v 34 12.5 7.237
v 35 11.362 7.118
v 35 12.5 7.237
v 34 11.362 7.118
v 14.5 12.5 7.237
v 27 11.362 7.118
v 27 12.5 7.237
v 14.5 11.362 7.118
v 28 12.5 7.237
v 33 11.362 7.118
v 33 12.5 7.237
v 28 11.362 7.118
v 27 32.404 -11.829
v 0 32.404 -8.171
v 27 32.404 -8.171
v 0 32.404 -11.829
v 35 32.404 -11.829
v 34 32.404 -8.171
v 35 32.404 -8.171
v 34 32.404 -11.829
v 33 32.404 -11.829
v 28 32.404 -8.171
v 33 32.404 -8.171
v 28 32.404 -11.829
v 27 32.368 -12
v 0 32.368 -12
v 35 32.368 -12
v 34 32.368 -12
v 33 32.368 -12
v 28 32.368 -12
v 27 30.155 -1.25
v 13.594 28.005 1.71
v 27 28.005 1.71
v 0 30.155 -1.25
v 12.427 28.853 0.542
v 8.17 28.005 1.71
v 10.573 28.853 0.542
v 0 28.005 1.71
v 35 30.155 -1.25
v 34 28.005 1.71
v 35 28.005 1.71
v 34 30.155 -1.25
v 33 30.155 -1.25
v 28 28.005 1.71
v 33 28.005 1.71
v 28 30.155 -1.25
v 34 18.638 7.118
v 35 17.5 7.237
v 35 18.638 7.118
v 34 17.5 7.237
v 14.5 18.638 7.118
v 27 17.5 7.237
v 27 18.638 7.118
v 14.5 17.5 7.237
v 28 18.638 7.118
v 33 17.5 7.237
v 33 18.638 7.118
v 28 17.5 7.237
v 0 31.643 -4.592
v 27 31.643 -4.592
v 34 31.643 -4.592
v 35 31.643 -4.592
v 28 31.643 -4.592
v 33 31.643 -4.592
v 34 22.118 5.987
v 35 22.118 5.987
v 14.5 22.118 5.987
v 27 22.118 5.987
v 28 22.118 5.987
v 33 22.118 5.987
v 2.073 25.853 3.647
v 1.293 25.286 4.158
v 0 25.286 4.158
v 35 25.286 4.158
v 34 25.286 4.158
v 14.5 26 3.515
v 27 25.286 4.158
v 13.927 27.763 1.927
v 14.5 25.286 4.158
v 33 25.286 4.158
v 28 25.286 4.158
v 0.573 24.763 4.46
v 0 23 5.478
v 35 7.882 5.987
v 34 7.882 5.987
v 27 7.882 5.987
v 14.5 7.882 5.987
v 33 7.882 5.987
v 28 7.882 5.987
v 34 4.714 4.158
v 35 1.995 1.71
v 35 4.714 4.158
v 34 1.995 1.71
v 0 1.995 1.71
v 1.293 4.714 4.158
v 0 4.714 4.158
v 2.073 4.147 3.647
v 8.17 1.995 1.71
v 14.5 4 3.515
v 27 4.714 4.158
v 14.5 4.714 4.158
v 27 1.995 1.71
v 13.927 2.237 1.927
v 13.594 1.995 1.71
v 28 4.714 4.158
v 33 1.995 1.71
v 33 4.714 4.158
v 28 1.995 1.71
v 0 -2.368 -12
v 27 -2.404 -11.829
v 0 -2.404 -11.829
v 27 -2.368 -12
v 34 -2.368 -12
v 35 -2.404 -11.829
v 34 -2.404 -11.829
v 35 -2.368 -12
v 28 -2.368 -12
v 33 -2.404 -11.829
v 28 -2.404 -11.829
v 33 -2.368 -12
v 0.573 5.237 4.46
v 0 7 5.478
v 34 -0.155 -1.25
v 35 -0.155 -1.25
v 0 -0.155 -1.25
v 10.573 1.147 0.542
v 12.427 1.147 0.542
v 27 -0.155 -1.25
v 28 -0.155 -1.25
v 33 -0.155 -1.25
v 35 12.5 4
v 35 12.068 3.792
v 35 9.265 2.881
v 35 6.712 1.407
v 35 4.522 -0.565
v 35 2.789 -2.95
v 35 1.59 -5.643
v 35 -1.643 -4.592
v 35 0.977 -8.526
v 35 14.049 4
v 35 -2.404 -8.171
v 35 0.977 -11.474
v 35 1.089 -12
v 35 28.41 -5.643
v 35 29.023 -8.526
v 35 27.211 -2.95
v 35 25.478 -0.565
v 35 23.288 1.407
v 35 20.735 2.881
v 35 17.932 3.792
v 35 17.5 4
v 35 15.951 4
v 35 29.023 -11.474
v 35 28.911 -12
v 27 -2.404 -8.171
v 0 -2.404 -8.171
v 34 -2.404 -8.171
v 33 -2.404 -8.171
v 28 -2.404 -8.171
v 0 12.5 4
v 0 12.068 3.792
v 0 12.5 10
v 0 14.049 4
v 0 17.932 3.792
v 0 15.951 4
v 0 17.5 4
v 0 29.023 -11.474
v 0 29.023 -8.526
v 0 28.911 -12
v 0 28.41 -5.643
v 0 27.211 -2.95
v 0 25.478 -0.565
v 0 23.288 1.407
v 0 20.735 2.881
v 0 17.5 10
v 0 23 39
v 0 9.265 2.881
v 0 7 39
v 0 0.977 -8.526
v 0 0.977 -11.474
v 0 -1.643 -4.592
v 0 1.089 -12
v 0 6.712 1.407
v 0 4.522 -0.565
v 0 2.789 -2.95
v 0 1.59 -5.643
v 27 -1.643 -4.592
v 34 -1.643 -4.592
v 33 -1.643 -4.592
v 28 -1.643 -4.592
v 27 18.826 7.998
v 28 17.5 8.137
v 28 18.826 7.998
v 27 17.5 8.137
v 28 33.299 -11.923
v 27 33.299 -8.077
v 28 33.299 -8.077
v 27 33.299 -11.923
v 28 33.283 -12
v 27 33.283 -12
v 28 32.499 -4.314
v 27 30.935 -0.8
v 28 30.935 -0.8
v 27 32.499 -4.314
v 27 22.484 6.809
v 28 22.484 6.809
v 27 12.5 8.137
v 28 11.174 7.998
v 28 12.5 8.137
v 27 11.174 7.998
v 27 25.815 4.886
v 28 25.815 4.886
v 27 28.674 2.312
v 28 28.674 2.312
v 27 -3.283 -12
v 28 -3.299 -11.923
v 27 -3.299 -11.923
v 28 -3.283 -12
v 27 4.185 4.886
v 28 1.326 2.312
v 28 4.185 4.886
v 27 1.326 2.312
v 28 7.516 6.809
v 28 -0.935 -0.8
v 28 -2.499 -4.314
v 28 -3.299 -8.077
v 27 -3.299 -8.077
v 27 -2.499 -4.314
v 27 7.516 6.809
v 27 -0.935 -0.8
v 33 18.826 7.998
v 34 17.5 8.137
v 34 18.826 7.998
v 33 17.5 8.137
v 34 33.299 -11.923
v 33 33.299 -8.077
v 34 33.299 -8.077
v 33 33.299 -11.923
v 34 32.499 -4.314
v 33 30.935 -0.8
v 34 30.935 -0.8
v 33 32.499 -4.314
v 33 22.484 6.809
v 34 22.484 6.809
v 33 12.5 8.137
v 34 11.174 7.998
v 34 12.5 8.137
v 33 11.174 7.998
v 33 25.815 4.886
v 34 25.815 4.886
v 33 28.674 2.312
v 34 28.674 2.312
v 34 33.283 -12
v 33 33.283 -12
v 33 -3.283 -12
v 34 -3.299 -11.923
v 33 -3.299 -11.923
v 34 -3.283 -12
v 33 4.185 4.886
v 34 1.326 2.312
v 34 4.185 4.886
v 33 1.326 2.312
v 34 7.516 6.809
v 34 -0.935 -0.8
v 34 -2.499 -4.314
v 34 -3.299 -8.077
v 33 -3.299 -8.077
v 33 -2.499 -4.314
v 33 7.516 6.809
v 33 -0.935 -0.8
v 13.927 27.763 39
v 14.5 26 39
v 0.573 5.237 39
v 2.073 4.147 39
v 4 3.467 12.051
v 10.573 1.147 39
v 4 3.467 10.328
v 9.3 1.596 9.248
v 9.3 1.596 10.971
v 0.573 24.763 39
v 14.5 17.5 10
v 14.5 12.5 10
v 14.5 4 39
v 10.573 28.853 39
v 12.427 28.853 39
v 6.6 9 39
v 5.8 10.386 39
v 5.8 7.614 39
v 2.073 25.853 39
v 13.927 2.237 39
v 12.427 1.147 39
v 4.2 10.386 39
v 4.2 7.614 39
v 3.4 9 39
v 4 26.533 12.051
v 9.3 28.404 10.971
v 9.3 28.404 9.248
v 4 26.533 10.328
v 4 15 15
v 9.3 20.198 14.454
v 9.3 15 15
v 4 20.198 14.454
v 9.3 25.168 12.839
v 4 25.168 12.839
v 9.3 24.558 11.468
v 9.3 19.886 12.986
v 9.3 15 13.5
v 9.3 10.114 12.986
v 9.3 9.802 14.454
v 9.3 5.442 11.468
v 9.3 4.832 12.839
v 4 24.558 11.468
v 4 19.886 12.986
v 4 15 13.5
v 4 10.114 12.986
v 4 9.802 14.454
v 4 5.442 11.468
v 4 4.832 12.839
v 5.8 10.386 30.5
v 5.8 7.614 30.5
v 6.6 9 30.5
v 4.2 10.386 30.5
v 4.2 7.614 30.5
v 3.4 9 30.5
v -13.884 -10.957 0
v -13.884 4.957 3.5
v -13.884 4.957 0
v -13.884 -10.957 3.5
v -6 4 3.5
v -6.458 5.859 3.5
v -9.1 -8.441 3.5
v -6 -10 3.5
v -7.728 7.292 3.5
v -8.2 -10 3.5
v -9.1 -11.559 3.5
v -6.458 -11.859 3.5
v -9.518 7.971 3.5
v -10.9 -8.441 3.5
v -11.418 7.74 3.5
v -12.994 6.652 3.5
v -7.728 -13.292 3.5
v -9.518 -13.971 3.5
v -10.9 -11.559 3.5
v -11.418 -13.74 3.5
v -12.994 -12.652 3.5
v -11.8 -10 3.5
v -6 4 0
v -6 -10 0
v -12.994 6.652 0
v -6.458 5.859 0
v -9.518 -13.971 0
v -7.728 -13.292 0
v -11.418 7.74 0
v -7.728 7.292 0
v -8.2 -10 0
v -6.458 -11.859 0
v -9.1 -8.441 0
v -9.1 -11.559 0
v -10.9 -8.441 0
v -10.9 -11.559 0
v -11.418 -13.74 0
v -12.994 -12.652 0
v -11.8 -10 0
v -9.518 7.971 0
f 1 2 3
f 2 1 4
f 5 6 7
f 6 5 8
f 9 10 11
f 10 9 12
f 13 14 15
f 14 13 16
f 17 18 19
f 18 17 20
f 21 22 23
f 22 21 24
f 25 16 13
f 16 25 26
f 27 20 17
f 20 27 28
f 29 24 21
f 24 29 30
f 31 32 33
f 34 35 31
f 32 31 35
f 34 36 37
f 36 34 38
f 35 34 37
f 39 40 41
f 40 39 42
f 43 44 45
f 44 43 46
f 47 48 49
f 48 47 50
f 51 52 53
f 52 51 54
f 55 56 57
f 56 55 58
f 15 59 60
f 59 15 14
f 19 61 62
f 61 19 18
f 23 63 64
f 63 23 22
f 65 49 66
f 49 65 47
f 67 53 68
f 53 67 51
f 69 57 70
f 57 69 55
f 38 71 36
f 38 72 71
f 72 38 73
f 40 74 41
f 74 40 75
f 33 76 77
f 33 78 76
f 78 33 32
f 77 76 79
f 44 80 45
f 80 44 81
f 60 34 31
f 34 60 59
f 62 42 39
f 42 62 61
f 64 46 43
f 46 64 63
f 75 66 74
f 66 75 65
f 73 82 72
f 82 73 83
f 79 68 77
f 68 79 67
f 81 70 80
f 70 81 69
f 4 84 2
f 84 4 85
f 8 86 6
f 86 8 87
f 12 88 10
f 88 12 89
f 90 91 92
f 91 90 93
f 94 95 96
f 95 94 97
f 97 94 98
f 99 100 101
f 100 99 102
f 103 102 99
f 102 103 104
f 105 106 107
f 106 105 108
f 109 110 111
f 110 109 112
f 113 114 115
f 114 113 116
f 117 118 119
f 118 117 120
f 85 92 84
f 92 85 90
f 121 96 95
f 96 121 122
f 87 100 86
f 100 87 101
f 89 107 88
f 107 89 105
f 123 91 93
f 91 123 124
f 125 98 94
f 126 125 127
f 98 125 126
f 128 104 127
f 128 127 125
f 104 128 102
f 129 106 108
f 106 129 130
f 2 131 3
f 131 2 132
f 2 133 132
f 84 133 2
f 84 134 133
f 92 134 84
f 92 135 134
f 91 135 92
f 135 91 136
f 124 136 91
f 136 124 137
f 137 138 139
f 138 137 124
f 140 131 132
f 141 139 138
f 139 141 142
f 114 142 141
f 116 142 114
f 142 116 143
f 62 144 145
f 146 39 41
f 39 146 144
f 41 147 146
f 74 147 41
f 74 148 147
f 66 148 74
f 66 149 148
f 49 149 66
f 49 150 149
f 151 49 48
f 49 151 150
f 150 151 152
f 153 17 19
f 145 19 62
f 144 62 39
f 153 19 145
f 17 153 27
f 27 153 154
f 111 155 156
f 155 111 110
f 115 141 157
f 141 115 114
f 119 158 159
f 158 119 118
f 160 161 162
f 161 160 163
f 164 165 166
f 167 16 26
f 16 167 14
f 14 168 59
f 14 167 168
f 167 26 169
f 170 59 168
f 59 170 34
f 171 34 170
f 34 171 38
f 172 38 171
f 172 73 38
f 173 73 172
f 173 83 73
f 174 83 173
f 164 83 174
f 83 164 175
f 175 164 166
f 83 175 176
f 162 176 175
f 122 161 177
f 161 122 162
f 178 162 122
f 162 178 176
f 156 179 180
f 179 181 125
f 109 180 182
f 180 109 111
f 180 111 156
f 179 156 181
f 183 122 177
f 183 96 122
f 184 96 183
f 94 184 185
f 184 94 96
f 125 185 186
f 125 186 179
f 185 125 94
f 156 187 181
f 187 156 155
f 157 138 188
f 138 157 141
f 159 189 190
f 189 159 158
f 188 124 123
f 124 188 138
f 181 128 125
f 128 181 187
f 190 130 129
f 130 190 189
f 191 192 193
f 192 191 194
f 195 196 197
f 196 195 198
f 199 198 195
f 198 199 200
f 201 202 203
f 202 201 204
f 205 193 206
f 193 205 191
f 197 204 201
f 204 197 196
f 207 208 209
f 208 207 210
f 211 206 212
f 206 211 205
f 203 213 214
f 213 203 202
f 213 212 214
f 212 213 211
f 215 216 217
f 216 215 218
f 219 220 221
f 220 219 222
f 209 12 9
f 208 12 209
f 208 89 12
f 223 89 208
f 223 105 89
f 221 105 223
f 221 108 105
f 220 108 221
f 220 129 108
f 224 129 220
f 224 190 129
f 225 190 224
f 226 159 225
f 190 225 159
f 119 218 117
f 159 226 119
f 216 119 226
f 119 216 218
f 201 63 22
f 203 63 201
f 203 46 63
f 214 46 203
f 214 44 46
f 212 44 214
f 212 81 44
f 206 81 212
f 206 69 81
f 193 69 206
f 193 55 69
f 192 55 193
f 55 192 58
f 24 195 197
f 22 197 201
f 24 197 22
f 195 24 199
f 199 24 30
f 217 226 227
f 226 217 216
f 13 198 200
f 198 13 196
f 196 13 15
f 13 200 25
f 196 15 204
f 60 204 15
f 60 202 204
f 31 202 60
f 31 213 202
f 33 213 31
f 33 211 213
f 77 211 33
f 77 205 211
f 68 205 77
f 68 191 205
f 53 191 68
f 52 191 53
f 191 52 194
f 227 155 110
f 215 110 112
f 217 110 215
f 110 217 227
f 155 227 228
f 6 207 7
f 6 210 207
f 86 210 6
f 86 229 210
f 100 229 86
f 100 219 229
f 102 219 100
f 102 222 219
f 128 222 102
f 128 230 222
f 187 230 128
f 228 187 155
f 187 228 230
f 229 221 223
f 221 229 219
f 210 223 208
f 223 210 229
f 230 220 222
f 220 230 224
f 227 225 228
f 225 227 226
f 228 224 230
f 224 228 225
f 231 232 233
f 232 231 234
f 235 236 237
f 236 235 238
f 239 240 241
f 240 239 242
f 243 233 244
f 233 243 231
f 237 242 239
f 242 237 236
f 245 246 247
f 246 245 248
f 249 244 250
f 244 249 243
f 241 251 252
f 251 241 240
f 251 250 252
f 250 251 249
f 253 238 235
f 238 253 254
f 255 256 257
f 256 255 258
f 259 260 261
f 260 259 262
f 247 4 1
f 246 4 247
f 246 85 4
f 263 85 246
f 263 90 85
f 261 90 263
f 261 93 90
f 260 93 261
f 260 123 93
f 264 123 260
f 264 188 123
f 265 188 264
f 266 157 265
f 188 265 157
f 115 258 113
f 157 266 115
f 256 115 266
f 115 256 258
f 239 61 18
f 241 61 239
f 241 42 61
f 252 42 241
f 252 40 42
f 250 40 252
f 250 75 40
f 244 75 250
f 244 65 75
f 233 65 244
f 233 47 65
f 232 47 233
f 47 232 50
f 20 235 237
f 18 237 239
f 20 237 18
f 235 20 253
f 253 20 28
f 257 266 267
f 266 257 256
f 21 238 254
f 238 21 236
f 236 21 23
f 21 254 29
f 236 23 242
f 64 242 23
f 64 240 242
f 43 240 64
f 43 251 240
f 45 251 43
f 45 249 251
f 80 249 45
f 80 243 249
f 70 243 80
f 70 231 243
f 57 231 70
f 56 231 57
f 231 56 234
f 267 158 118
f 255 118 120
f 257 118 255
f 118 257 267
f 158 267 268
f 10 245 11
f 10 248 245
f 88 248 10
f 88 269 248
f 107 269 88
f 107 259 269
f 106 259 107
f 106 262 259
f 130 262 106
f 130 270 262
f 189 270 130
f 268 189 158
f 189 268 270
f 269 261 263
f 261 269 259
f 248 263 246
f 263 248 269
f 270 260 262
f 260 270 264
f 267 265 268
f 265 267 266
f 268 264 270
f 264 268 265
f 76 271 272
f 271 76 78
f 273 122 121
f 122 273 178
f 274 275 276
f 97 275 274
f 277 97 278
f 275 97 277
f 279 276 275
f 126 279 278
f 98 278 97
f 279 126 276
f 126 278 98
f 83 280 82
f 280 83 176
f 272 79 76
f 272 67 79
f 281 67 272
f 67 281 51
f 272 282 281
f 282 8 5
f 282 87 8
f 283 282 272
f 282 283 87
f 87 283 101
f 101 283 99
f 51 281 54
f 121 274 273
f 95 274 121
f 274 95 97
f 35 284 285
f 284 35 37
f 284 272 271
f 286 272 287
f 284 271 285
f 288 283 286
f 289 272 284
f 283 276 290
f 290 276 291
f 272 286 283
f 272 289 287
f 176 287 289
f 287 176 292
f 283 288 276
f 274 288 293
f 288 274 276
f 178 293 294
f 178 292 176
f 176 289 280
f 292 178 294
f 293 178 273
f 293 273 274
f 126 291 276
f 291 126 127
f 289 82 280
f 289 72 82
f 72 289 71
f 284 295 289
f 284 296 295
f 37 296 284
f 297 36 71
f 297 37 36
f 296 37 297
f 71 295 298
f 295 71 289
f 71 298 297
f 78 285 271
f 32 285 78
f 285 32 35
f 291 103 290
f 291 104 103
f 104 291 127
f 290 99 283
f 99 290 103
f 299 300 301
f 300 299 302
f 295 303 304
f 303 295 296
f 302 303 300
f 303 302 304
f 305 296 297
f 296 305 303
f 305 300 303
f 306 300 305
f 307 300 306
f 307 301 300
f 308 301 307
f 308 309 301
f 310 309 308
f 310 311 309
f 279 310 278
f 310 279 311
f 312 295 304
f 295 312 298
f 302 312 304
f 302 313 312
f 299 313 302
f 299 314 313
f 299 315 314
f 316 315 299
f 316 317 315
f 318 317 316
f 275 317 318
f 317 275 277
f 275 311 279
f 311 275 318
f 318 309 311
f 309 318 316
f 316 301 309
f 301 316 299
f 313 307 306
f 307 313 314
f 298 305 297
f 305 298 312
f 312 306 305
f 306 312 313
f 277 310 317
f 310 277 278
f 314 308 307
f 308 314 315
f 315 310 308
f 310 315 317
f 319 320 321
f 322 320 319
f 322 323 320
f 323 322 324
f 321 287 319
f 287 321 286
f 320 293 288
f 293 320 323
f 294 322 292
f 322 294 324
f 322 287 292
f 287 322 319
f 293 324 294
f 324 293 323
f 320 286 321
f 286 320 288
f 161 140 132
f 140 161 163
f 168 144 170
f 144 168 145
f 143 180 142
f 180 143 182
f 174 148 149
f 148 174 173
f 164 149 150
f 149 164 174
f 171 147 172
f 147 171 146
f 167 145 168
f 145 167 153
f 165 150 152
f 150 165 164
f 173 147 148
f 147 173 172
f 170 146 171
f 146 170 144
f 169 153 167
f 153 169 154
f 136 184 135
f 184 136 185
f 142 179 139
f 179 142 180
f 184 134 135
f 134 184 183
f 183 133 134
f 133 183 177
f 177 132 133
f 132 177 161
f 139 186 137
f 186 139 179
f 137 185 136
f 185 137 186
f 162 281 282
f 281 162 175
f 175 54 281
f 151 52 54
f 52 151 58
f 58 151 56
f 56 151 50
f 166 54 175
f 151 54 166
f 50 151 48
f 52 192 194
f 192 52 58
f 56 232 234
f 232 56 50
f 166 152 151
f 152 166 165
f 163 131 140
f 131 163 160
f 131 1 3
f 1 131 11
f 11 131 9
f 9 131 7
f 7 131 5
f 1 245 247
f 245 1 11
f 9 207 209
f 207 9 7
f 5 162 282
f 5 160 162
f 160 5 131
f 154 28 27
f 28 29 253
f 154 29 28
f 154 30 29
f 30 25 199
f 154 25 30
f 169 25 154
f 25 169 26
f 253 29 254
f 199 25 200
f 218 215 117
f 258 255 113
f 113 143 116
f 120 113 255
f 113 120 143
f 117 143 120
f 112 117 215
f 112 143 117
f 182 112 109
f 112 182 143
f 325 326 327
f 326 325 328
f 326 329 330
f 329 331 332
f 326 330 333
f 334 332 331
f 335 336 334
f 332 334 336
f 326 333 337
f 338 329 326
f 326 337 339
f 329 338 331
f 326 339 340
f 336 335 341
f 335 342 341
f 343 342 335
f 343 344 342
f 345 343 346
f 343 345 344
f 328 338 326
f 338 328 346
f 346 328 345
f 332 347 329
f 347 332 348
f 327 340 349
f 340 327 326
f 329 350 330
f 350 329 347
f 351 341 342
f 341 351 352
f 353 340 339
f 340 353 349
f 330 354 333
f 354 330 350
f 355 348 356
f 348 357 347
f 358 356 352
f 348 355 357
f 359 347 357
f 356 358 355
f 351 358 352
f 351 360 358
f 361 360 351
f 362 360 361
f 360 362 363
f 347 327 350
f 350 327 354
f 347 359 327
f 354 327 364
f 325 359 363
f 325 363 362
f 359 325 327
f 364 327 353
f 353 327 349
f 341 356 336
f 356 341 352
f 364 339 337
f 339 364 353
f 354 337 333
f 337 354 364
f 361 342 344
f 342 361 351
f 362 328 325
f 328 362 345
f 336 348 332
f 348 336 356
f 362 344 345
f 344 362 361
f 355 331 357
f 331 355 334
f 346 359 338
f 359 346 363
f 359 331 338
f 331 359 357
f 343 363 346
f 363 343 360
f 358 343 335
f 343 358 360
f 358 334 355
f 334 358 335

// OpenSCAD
// FIXME: fix up zip tie cutout

difference(){

  union() {
    // body
    translate([0, 15, -10])
    rotate([0, 90, 0])
    // 28.6 / 2 = 14.3
    cylinder(h=35, r=17.5);

    // cable tie bit
    translate([27, 15, -10])
    rotate([0, 90, 0])
    cylinder(h=1, r=18.4);

    // cable tie bit
    translate([33, 15, -10])
    rotate([0, 90, 0])
    cylinder(h=1, r=18.4);
      
    // key thing
    translate([3, 7, 0])
    hull() {
      cylinder(r=3,h=39);
    
      translate([0, 16, 0])
      cylinder(r=3,h=39);
  
      translate([8.5, -3, 0])
      cylinder(r=3,h=39);
    
      translate([8.5, 19, 0])
      cylinder(r=3,h=39);
    }
  }

  // m3 hole
  translate([5, 9, 30.5])
  cylinder(h=9, r=1.6);
  
  // frame cutout
  translate([-10, 15, -10])
  rotate([0, 90, 0])
  // 28.6 / 2 = 14.3
  cylinder(h=50, r=14.1);


  // cable tie cutout
  translate([4, 15, -10])
  rotate([0, 90, 0])
  difference() {
    cylinder(h=5.3, r=25);
    cylinder(h=6, r=23.5);
  }
  
  // cable cutout
  translate([-2, 12.5, 4])
  cube([60, 5, 6]);
  

  // cut lower half
  translate([-1, -5, -52])
  cube([40, 40, 40]);

}

// retention arm
translate([-10, -10, 0])
difference() {
  hull() {
    cylinder(r=4,h=3.5);
    
    translate([0, 14, 0])
    cylinder(r=4,h=3.5);
  }

  translate([0, 0, -1])
  cylinder(h=9, r=1.8);

}
